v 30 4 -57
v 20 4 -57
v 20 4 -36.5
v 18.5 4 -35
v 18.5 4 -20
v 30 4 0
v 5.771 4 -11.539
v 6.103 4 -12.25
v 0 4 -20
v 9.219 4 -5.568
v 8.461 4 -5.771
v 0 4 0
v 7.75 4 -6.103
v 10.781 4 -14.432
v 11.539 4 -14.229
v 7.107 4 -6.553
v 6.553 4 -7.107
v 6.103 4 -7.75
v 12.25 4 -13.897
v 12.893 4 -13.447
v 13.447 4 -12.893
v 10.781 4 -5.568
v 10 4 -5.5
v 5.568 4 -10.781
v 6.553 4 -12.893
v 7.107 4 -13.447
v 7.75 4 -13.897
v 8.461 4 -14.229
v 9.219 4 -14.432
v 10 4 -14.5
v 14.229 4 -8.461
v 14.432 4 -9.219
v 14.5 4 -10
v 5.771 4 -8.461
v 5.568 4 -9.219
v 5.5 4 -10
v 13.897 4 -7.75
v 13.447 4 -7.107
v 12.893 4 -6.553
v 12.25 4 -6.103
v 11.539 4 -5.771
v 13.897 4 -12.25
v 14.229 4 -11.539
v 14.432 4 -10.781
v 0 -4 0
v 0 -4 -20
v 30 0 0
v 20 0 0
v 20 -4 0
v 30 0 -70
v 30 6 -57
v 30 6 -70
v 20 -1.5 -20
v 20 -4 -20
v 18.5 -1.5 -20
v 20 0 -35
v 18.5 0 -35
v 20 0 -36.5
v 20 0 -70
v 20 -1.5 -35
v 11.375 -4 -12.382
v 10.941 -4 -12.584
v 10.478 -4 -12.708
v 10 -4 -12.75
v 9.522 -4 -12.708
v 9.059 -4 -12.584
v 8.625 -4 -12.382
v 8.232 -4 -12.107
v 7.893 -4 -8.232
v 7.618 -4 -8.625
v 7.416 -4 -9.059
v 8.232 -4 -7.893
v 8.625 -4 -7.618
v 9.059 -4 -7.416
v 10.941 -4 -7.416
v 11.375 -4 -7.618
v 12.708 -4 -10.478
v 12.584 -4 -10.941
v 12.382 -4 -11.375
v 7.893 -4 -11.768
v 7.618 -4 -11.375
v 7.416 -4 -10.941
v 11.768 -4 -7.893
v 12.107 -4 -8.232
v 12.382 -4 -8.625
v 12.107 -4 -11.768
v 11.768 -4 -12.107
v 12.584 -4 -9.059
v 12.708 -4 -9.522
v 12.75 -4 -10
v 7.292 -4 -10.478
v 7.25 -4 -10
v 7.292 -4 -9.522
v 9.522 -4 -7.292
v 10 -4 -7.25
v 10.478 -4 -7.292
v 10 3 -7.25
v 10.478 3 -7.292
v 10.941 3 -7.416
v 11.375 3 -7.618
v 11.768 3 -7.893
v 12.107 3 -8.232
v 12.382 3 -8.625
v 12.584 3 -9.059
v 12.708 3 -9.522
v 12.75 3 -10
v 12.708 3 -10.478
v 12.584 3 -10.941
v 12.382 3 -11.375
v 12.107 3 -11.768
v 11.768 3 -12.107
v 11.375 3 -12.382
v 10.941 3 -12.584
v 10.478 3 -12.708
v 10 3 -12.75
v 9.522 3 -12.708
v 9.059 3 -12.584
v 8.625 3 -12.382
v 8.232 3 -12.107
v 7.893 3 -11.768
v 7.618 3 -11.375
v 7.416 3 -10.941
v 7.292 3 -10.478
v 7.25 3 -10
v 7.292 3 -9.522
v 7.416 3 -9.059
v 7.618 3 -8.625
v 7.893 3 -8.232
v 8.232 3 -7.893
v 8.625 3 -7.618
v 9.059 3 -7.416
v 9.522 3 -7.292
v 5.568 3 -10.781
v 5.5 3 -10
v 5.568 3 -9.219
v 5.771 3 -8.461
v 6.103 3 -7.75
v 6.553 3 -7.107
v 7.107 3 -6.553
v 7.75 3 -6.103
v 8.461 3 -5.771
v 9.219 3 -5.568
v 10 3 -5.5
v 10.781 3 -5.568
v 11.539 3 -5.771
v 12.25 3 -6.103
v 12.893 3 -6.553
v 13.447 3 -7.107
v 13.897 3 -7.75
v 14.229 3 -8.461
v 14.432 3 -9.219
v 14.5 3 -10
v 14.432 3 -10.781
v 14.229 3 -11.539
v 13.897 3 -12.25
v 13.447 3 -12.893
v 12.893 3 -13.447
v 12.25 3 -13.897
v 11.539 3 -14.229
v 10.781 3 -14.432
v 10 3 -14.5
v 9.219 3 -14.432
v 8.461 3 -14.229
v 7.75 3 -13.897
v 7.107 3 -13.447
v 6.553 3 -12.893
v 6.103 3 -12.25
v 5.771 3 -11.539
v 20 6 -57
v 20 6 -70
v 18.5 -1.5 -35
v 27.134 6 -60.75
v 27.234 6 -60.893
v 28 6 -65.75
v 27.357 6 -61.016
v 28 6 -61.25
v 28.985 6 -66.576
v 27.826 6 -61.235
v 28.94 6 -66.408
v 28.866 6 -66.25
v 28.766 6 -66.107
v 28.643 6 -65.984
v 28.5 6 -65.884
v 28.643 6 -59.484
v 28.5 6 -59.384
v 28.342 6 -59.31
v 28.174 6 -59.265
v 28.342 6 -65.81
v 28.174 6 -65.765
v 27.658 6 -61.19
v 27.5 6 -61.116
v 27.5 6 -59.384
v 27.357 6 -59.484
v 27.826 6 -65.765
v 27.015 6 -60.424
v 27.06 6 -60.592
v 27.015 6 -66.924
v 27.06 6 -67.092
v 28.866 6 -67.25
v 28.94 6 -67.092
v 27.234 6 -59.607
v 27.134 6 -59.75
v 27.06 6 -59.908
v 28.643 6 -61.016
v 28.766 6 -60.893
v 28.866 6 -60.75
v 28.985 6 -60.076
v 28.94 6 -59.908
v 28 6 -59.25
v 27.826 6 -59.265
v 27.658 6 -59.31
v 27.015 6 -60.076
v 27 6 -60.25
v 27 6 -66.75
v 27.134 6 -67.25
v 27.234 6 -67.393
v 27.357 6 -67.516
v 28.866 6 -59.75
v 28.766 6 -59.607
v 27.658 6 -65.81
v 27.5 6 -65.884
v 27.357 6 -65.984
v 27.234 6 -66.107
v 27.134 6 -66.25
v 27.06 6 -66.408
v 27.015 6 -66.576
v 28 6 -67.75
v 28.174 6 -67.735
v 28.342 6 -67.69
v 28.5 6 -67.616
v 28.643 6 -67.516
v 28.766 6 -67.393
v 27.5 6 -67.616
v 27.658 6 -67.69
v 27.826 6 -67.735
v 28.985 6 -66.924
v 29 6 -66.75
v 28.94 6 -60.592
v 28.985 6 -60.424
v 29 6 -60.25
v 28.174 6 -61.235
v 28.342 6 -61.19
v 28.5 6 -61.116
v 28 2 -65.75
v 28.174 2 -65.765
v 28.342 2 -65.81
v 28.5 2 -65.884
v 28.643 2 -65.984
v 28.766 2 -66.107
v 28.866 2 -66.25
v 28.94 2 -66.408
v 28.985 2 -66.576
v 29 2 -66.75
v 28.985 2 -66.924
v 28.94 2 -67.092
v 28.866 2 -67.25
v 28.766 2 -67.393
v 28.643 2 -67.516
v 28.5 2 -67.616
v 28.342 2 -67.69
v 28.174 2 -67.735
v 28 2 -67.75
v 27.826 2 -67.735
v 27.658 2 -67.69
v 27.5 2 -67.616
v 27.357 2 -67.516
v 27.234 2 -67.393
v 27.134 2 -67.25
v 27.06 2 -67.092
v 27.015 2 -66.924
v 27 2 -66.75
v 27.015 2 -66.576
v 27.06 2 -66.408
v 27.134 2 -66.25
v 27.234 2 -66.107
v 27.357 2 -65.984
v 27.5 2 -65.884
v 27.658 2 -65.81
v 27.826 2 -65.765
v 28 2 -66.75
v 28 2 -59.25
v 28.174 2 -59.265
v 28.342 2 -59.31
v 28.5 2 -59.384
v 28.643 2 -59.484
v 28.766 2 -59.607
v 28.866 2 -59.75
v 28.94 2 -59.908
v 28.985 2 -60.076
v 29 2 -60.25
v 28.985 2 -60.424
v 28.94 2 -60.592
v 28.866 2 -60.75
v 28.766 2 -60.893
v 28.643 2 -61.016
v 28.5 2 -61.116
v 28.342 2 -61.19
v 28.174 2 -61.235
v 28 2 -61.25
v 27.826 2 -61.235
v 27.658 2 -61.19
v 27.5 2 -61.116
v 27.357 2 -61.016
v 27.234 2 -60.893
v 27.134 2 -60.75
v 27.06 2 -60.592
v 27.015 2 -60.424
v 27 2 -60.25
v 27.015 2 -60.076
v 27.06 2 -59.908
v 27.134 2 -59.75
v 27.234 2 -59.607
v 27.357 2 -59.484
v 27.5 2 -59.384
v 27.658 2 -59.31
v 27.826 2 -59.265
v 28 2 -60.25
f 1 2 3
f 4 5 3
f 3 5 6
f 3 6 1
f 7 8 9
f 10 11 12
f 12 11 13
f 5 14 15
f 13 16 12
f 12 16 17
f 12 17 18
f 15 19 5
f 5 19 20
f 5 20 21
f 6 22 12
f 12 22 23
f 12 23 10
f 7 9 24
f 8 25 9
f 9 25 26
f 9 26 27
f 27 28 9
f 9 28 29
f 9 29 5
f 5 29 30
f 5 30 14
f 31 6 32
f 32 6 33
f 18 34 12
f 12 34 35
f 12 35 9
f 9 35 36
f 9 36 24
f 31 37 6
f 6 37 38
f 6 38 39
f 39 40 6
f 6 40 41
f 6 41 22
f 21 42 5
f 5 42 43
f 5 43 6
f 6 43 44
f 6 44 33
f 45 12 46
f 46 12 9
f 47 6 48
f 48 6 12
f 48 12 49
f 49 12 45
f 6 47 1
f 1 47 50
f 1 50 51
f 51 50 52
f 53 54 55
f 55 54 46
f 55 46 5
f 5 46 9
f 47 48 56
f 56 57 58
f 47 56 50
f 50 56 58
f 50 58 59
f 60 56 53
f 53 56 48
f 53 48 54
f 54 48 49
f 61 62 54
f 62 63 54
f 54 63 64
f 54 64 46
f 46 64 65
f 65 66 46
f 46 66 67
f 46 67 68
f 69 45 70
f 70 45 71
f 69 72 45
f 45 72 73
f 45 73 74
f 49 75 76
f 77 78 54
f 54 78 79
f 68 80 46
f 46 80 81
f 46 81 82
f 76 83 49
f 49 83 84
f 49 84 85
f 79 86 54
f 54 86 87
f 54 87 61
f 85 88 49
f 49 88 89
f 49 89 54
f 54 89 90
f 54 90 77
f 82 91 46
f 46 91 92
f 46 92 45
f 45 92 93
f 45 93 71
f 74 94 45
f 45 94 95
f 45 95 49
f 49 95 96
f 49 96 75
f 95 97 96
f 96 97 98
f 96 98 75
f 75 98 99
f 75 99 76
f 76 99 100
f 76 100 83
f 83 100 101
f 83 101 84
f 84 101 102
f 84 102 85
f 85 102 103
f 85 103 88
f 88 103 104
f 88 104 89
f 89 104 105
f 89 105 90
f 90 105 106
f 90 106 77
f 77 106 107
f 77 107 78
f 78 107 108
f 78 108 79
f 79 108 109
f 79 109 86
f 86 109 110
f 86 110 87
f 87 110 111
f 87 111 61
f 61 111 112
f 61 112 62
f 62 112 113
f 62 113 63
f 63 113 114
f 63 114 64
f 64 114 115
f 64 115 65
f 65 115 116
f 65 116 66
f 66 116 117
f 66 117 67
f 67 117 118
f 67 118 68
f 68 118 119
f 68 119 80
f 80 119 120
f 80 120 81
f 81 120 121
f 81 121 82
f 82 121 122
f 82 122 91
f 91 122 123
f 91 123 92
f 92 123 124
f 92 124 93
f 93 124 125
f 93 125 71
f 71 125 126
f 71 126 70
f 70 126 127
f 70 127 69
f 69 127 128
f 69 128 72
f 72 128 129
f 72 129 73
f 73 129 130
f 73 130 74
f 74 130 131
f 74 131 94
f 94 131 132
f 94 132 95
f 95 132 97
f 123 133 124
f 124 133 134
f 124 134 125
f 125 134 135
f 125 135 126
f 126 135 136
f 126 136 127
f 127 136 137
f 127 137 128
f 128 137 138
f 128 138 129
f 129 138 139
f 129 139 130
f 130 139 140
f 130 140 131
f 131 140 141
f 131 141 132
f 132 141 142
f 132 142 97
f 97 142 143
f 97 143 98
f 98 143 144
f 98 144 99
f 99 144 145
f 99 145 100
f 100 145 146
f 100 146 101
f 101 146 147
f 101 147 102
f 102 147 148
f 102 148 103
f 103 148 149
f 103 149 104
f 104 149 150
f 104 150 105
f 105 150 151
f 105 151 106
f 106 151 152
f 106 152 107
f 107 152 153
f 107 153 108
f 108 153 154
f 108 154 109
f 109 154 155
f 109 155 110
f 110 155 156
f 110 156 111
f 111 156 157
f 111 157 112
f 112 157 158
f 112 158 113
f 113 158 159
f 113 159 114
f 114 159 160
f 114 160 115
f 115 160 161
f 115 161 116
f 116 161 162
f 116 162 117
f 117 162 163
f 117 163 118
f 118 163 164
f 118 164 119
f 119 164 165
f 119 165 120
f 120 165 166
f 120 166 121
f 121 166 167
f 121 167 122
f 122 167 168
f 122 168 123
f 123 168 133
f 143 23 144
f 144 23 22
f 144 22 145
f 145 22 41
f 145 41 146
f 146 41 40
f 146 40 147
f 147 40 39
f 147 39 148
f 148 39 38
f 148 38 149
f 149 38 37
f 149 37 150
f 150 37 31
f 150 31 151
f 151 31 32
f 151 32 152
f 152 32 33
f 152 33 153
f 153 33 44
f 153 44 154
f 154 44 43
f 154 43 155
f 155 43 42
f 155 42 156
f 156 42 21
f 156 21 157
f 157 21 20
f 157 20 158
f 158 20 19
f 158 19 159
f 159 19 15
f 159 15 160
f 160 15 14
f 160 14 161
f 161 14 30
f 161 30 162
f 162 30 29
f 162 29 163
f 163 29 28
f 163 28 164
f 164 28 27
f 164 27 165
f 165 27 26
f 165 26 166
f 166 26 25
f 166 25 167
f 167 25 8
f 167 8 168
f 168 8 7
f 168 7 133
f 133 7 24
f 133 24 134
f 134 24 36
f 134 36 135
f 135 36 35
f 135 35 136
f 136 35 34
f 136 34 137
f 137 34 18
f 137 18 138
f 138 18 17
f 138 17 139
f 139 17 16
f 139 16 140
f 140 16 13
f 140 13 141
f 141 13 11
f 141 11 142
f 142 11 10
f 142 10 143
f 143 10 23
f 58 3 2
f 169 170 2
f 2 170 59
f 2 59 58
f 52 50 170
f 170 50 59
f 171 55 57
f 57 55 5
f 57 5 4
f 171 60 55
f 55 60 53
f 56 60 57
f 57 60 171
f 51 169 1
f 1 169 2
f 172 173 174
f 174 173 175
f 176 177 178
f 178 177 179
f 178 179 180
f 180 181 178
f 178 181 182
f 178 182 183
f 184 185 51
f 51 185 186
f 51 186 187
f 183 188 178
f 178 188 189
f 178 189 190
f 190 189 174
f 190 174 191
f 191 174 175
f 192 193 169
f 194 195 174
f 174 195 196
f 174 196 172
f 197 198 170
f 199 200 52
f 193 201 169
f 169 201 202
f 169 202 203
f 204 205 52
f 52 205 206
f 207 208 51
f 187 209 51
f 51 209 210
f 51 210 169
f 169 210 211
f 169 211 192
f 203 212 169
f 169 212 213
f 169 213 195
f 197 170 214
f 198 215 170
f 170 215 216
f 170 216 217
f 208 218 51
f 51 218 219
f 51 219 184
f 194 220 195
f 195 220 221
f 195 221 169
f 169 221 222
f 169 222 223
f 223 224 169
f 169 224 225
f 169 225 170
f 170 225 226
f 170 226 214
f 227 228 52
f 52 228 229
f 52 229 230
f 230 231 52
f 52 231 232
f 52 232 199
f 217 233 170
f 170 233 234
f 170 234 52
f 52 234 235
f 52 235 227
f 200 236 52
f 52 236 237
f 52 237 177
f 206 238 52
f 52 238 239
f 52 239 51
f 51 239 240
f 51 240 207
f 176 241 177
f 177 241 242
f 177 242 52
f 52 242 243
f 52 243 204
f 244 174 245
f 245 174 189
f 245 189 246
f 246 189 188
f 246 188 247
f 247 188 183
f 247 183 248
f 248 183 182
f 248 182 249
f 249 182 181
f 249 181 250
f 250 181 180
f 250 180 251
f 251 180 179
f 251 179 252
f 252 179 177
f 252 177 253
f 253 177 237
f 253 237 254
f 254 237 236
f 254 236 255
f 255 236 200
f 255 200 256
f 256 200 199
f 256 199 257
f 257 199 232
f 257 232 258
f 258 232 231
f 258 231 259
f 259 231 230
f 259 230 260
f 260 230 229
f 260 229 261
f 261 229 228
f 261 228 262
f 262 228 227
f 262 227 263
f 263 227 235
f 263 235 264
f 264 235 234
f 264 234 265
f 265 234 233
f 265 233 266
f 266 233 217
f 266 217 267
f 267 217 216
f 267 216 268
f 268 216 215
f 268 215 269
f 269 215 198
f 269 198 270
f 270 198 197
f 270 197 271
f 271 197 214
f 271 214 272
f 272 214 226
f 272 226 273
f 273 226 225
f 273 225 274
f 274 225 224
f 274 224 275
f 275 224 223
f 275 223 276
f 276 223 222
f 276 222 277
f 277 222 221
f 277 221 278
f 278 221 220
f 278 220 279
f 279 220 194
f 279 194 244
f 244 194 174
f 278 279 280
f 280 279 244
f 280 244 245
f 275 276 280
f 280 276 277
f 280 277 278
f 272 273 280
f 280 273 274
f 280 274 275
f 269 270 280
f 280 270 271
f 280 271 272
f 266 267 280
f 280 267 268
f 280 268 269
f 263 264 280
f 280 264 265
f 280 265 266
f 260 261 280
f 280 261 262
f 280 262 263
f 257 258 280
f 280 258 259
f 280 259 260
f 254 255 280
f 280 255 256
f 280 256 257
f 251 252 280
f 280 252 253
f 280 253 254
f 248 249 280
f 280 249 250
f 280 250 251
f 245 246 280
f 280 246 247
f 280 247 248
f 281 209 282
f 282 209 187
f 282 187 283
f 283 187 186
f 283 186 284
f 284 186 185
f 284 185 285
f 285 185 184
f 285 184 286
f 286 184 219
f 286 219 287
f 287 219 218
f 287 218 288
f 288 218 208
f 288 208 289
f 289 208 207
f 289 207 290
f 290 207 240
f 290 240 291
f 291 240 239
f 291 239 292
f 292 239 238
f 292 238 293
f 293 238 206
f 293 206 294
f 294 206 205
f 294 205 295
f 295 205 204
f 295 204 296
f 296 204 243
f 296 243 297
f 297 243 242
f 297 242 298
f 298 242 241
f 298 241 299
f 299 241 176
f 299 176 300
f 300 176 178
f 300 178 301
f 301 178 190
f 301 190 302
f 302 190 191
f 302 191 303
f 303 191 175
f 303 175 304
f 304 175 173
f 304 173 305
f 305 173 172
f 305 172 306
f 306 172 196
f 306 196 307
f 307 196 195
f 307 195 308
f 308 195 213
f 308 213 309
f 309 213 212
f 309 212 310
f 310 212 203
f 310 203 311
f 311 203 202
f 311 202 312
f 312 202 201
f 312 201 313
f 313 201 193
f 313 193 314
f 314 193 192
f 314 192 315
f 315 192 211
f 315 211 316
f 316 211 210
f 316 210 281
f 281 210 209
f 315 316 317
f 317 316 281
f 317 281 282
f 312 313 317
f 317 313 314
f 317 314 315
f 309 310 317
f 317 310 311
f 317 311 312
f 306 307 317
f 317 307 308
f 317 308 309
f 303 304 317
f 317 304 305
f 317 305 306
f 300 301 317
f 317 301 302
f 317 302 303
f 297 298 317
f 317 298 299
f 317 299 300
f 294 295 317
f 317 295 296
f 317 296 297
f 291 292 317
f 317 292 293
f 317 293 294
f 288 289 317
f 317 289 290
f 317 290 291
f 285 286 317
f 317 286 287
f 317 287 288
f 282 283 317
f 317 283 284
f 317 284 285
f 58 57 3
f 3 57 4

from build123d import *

# Parameters (mm, degrees)
SKETCH1_W                       = 30
SKETCH1_H                       = 20
BOSS_EXTRUDE1_DEPTH             = 4
SKETCH2_W                       = 20
SKETCH2_H                       = 20
BOSS_EXTRUDE2_DEPTH             = 4
CBORE_FOR_M5_SBHCS1_D           = 5.5
CBORE_FOR_M5_SBHCS1_CBORE_D     = 9
CBORE_FOR_M5_SBHCS1_CBORE_DEPTH = 1
SKETCH10_W                      = 10
SKETCH10_H                      = 4
BOSS_EXTRUDE3_DEPTH             = 50
BOSS_EXTRUDE4_DEPTH             = 15
SKETCH11_W                      = 10
SKETCH11_H                      = 13
BOSS_EXTRUDE5_DEPTH             = 2
SKETCH12_R                      = 1
CUT_EXTRUDE1_DEPTH              = 4
CHAMFER1_SIZE                   = 1.5


with BuildPart() as part:
    # Sketch1 → Boss-Extrude1 (new body)
    with BuildSketch(Plane(origin=(0, 0, 0), x_dir=(1, 0, 0), z_dir=(0, 1, 0))):
        with Locations((15, 10)):
            Rectangle(SKETCH1_W, SKETCH1_H)
    extrude(amount=BOSS_EXTRUDE1_DEPTH)

    # Sketch2 → Boss-Extrude2 (add)
    with BuildSketch(Plane.XZ):
        with Locations((10, -10)):
            Rectangle(SKETCH2_W, SKETCH2_H)
    extrude(amount=BOSS_EXTRUDE2_DEPTH)

    # CBORE for M5 SBHCS1 (through all)
    with Locations(Plane(origin=(0, 4, 0), x_dir=(1, 0, 0), z_dir=(0, 1, 0))):
        with Locations((10, 10)):
            CounterBoreHole(CBORE_FOR_M5_SBHCS1_D / 2, CBORE_FOR_M5_SBHCS1_CBORE_D / 2, CBORE_FOR_M5_SBHCS1_CBORE_DEPTH)

    # Sketch10 → Boss-Extrude3 (add)
    with BuildSketch(Plane(origin=(0, 0, -20), x_dir=(-1, 0, 0), z_dir=(0, 0, -1))):
        with Locations((-25, 2)):
            Rectangle(SKETCH10_W, SKETCH10_H)
    extrude(amount=BOSS_EXTRUDE3_DEPTH)

    # Sketch10<3> → Boss-Extrude4 (add)
    with BuildSketch(Plane(origin=(0, 0, -20), x_dir=(-1, 0, 0), z_dir=(0, 0, -1))):
        Polygon((-18.5, 4), (-20, 4), (-20, 0), (-20, -1.5), (-18.5, -1.5), align=None)
    extrude(amount=BOSS_EXTRUDE4_DEPTH)

    # Sketch11 → Boss-Extrude5 (add)
    with BuildSketch(Plane(origin=(0, 4, 0), x_dir=(1, 0, 0), z_dir=(0, 1, 0))):
        with Locations((25, 63.5)):
            Rectangle(SKETCH11_W, SKETCH11_H)
    extrude(amount=BOSS_EXTRUDE5_DEPTH)

    # Sketch12 → Cut-Extrude1 (cut)
    with BuildSketch(Plane(origin=(0, 6, 0), x_dir=(1, 0, 0), z_dir=(0, 1, 0))):
        with Locations(Location((28, 60.25, 0), (0, 0, 270))):
            Circle(SKETCH12_R)
        with Locations(Location((28, 66.75, 0), (0, 0, 270))):
            Circle(SKETCH12_R)
    extrude(amount=-CUT_EXTRUDE1_DEPTH, mode=Mode.SUBTRACT)

    # Chamfer1
    chamfer1_edges = [part.edges().sort_by_distance(p)[0] for p in [
        (20, 2, -35),
    ]]
    chamfer(chamfer1_edges, length=CHAMFER1_SIZE - 0.0001)  # a hair under: the kernel refuses the full size


solid = part.part
